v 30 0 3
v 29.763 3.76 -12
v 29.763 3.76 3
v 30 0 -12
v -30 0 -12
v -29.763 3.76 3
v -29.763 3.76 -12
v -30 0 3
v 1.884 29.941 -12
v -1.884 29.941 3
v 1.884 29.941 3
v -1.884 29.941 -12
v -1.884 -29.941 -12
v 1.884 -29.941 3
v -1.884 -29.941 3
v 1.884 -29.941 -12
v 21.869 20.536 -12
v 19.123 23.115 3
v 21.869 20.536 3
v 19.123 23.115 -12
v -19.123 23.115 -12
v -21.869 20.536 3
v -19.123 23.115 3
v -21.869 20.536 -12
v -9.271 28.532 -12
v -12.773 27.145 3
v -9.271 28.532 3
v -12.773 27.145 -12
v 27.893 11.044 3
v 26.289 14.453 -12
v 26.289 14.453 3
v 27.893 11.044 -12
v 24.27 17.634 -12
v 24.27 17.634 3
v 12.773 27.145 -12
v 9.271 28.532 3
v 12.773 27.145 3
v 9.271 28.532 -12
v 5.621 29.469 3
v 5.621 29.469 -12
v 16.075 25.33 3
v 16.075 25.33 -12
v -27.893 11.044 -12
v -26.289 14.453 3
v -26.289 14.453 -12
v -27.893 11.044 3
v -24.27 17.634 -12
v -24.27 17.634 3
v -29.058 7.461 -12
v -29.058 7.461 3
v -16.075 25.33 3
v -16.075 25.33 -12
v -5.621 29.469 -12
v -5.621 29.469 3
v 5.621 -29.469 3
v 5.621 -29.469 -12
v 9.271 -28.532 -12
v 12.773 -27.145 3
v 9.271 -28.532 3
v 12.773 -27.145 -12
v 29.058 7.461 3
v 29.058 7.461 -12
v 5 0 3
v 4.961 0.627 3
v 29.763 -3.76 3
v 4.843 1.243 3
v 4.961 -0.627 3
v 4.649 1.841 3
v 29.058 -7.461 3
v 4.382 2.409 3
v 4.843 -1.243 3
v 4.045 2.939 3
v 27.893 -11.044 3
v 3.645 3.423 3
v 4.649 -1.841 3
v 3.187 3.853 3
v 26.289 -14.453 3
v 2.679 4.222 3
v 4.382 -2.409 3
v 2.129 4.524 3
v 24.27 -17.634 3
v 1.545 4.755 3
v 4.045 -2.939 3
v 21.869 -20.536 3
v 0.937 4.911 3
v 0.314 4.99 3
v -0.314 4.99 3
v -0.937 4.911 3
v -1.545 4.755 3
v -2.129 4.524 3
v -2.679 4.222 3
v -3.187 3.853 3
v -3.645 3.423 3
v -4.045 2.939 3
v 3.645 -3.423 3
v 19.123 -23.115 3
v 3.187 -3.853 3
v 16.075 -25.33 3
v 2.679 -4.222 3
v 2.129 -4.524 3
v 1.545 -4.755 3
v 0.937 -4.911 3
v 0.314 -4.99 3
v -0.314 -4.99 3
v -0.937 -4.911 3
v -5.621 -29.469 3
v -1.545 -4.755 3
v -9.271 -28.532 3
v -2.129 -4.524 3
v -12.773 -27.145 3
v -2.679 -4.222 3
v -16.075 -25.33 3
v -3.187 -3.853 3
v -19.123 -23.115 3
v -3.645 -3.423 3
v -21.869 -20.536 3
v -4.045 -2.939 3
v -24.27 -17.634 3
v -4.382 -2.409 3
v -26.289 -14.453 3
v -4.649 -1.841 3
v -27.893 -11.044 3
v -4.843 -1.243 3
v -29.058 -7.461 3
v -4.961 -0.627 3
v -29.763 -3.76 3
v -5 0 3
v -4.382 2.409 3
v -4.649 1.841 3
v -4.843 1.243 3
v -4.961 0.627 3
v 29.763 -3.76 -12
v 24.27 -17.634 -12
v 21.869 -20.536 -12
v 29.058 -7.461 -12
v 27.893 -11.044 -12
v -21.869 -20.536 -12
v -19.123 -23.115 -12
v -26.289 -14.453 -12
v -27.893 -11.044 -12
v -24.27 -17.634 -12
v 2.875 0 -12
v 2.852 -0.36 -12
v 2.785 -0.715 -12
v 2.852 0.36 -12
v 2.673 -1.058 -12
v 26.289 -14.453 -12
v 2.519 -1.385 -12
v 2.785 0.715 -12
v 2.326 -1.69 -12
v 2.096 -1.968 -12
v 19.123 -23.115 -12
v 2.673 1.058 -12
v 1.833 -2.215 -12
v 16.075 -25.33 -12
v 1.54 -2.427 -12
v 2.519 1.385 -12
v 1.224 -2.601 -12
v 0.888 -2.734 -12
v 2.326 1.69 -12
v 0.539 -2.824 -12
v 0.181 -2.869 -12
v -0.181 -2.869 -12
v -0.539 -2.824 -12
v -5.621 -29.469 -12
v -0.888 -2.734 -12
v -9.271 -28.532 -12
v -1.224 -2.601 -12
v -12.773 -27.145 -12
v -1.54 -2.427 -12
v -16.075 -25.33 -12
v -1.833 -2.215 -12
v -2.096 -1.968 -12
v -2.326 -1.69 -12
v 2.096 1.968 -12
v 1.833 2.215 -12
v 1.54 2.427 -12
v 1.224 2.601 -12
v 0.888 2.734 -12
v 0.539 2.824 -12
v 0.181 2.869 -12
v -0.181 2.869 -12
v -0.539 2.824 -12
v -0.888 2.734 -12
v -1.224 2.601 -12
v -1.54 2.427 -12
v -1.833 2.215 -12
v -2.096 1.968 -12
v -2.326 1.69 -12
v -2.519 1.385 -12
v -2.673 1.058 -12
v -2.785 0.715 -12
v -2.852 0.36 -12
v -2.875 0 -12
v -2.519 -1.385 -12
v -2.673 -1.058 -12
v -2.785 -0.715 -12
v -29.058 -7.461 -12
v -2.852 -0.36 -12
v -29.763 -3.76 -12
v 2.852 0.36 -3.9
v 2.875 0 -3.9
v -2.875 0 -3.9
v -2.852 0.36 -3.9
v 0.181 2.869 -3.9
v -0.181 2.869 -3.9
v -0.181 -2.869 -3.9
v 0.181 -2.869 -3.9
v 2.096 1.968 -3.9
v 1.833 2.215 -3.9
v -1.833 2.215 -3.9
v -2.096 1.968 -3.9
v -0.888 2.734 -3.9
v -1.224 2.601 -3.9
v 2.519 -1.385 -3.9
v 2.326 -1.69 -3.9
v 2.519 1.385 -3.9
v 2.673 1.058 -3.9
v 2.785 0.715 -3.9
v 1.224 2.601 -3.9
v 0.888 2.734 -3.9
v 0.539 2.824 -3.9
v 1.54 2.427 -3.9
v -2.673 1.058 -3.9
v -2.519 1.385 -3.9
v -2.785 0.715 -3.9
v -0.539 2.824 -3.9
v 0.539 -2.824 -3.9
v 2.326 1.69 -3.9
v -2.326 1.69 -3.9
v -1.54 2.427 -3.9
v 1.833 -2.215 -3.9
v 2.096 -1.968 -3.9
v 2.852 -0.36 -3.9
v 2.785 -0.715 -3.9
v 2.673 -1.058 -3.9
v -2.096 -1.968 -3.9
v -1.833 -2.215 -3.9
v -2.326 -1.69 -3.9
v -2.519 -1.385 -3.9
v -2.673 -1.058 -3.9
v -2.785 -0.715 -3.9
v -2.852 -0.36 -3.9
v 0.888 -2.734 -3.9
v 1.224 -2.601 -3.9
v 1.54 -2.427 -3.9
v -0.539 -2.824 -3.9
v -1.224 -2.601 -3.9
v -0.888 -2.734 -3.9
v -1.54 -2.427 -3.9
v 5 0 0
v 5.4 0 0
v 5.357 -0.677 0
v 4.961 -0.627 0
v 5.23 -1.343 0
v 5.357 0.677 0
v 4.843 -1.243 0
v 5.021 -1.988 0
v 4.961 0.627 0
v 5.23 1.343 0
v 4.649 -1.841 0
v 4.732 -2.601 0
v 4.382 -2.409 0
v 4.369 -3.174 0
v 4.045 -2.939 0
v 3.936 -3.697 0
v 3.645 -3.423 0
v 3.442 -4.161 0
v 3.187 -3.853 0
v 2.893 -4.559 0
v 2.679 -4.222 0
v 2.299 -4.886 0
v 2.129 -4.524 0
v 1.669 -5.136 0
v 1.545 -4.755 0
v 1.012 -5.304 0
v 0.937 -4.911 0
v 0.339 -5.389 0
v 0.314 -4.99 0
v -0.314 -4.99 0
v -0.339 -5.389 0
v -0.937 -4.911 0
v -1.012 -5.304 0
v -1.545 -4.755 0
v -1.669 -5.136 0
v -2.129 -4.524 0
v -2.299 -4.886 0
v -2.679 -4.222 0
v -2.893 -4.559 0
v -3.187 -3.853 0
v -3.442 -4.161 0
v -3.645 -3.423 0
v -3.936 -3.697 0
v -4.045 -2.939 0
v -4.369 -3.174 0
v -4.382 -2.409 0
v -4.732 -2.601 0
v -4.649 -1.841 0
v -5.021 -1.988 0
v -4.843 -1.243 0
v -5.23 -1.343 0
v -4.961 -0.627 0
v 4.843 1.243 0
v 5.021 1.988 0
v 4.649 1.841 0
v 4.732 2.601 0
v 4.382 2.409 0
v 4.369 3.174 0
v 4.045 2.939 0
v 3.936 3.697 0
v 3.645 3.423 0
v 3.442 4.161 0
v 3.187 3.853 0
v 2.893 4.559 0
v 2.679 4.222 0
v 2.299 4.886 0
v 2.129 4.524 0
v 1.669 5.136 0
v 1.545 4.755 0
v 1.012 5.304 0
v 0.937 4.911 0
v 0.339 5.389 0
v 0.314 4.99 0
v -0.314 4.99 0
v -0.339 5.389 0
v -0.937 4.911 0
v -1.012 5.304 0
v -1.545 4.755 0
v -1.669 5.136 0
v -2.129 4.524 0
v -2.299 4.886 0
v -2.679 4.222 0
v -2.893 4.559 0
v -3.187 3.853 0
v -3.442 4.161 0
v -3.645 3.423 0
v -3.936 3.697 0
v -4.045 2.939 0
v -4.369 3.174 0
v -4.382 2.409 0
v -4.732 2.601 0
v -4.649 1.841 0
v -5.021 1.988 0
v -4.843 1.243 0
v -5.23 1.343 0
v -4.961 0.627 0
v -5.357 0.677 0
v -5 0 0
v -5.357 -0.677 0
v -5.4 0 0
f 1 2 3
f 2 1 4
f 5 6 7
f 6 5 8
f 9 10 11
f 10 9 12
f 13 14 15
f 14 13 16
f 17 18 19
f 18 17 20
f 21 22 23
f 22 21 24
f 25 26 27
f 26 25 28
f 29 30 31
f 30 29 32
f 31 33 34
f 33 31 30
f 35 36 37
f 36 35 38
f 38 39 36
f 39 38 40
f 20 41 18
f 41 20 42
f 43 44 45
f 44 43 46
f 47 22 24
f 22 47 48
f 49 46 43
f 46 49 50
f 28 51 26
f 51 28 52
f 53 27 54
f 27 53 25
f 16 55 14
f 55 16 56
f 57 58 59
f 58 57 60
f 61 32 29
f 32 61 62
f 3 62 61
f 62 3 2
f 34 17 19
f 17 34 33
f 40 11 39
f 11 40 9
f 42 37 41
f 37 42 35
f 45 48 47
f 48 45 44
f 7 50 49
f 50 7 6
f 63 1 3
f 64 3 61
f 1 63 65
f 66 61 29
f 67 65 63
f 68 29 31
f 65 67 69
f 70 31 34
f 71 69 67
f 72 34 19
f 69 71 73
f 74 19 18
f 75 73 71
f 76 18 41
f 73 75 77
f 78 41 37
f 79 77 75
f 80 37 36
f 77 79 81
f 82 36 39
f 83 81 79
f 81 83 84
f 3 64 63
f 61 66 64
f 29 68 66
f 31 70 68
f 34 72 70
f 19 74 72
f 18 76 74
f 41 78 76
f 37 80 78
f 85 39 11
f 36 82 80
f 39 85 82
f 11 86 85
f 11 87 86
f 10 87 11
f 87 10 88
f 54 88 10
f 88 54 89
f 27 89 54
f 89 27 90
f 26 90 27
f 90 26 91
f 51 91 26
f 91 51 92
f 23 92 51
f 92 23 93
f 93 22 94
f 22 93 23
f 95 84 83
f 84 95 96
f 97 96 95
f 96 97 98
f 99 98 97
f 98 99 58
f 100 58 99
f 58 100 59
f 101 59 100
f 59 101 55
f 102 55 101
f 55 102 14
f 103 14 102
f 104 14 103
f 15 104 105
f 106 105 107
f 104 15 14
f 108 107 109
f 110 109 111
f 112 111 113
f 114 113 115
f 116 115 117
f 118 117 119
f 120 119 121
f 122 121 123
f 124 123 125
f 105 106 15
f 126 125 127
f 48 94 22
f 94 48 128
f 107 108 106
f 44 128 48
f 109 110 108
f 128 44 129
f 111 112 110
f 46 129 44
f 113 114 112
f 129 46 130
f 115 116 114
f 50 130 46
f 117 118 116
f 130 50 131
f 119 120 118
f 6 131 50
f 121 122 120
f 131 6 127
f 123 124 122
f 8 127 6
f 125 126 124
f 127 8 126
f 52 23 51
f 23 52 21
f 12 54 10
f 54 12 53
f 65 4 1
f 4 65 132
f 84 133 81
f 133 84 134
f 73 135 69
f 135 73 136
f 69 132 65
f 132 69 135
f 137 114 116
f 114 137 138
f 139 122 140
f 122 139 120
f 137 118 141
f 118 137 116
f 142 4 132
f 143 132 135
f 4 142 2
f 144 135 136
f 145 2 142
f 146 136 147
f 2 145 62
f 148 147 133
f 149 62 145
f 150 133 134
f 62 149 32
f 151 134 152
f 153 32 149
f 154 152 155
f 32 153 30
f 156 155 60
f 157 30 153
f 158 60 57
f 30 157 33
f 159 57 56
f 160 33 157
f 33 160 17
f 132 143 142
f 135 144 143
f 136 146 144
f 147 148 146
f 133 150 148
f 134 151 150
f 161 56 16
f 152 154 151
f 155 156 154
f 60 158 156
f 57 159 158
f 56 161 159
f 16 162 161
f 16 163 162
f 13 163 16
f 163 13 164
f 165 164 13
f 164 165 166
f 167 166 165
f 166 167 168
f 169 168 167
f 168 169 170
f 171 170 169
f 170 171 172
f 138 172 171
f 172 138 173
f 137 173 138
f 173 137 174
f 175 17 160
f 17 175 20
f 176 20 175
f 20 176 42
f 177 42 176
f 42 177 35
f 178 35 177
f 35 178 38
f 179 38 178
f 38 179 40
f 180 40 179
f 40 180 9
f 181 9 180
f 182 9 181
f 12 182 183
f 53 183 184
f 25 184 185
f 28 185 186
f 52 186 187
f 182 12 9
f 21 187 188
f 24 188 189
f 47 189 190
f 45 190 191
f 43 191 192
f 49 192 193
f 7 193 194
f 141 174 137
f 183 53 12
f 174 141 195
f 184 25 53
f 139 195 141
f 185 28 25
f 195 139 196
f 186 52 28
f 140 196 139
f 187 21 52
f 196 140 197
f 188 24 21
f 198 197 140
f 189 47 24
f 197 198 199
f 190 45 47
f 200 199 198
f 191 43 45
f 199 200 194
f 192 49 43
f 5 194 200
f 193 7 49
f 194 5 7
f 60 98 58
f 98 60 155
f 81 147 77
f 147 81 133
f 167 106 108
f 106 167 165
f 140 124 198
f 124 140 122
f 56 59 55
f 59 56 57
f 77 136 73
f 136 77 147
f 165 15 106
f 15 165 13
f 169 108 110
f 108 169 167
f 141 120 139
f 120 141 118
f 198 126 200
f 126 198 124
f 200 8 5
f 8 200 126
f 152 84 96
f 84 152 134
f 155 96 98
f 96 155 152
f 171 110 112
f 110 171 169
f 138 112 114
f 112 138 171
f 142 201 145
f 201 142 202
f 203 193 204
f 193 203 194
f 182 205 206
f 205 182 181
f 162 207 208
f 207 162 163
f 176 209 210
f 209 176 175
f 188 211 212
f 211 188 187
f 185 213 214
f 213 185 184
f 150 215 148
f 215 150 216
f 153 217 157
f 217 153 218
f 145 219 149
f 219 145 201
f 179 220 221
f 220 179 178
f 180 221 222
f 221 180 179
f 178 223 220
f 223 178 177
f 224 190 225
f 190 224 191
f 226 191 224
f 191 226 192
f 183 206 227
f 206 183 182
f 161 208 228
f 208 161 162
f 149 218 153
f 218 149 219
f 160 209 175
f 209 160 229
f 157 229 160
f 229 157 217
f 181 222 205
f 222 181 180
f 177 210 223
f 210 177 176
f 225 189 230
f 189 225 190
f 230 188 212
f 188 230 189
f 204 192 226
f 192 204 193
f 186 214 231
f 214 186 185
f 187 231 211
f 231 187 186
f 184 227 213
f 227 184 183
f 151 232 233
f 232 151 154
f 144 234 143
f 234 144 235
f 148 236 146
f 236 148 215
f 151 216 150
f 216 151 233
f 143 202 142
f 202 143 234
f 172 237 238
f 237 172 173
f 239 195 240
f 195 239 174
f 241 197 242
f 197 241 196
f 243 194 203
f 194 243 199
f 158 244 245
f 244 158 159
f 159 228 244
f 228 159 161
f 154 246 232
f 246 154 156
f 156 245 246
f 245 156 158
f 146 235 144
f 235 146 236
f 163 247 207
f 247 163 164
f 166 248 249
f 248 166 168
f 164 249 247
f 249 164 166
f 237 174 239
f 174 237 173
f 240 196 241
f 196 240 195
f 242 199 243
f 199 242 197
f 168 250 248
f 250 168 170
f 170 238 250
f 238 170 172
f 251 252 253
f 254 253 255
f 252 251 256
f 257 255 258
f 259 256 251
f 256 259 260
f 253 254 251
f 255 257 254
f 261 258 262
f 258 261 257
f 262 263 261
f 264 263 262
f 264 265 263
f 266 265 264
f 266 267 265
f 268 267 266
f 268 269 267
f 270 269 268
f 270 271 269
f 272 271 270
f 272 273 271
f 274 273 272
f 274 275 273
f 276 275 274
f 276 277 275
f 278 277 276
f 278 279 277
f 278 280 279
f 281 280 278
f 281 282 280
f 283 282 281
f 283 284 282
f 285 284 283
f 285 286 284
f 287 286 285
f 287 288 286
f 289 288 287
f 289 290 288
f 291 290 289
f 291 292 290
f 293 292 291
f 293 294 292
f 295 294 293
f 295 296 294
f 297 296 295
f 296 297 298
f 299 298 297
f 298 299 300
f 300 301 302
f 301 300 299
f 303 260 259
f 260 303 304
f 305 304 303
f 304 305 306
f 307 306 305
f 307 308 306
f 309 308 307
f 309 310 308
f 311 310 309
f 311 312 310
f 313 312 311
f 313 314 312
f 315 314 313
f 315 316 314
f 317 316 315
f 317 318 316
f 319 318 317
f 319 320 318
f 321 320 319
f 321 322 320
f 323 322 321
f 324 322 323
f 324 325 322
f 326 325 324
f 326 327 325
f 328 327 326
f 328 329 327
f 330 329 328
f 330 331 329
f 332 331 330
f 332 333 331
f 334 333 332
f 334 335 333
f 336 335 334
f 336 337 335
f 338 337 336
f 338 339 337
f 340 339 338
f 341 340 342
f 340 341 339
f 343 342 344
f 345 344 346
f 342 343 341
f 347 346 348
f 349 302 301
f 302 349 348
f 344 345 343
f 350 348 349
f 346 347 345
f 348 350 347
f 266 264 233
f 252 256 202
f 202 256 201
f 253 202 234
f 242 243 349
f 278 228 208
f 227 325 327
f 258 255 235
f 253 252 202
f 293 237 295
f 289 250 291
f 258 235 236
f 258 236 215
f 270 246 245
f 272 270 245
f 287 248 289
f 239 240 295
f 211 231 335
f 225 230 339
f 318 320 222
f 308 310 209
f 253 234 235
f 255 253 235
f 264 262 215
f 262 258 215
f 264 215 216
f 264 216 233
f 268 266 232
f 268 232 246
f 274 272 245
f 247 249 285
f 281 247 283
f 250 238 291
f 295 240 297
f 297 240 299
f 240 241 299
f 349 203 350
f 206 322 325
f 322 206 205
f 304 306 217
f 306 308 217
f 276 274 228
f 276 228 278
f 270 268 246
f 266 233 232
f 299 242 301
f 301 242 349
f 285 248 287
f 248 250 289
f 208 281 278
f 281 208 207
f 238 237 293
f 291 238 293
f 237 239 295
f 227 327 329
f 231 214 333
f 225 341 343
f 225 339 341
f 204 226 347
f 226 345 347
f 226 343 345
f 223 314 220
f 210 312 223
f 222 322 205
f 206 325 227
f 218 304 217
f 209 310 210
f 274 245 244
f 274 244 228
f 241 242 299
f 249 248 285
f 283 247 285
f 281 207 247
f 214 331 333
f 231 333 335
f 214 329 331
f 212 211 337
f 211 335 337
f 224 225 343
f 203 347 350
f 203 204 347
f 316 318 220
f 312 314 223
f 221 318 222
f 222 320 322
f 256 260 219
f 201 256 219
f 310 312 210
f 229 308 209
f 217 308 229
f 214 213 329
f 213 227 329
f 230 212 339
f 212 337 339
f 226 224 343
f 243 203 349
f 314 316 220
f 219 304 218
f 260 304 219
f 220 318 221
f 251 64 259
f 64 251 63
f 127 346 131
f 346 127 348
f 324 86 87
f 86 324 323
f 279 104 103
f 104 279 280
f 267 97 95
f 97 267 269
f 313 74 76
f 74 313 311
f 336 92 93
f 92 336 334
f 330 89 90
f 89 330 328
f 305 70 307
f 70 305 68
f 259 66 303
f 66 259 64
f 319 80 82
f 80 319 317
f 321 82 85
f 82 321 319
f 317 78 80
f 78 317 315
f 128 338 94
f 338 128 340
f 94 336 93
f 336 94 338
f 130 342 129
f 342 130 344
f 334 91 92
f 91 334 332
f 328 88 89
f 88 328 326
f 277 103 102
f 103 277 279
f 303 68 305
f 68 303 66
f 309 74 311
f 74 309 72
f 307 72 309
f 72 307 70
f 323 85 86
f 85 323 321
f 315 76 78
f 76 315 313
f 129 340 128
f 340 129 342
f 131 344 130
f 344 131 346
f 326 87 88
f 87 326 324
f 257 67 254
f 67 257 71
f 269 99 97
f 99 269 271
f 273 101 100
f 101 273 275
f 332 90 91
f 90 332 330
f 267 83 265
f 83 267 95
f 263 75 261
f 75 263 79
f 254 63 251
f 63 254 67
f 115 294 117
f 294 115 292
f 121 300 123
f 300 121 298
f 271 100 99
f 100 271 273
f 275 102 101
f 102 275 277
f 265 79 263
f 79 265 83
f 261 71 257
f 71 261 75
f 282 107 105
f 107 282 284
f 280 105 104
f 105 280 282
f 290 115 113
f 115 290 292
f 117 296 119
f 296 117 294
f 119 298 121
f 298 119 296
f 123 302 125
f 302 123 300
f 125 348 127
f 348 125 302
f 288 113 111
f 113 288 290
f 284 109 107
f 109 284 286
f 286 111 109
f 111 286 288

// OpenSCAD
$fn = 50;

difference() {
	union() {
		translate(v = [0, 0, -12.0]) {
			cylinder(h = 15, r = 30.0);
		}
		#translate(v = [0, 0, -15.0]) {
			cylinder(h = 15, r = 2.875);
		}
	}
	union() {
		translate(v = [0, 0, 0]) {
			rotate(a = [0, 0, 0]) {
				difference() {
					union() {
						translate(v = [0, 0, -15.0]) {
							cylinder(h = 15, r = 2.6);
						}
						translate(v = [0, 0, -3.9]) {
							cylinder(h = 3.9, r1 = 2.875, r2 = 5.4);
						}
						translate(v = [0, 0, -15.0]) {
							cylinder(h = 15, r = 2.875);
						}
						translate(v = [0, 0, -15.0]) {
							cylinder(h = 15, r = 2.6);
						}
					}
					union();
				}
			}
		}
		#cylinder(h = 3, r = 5.0);
	}
}
